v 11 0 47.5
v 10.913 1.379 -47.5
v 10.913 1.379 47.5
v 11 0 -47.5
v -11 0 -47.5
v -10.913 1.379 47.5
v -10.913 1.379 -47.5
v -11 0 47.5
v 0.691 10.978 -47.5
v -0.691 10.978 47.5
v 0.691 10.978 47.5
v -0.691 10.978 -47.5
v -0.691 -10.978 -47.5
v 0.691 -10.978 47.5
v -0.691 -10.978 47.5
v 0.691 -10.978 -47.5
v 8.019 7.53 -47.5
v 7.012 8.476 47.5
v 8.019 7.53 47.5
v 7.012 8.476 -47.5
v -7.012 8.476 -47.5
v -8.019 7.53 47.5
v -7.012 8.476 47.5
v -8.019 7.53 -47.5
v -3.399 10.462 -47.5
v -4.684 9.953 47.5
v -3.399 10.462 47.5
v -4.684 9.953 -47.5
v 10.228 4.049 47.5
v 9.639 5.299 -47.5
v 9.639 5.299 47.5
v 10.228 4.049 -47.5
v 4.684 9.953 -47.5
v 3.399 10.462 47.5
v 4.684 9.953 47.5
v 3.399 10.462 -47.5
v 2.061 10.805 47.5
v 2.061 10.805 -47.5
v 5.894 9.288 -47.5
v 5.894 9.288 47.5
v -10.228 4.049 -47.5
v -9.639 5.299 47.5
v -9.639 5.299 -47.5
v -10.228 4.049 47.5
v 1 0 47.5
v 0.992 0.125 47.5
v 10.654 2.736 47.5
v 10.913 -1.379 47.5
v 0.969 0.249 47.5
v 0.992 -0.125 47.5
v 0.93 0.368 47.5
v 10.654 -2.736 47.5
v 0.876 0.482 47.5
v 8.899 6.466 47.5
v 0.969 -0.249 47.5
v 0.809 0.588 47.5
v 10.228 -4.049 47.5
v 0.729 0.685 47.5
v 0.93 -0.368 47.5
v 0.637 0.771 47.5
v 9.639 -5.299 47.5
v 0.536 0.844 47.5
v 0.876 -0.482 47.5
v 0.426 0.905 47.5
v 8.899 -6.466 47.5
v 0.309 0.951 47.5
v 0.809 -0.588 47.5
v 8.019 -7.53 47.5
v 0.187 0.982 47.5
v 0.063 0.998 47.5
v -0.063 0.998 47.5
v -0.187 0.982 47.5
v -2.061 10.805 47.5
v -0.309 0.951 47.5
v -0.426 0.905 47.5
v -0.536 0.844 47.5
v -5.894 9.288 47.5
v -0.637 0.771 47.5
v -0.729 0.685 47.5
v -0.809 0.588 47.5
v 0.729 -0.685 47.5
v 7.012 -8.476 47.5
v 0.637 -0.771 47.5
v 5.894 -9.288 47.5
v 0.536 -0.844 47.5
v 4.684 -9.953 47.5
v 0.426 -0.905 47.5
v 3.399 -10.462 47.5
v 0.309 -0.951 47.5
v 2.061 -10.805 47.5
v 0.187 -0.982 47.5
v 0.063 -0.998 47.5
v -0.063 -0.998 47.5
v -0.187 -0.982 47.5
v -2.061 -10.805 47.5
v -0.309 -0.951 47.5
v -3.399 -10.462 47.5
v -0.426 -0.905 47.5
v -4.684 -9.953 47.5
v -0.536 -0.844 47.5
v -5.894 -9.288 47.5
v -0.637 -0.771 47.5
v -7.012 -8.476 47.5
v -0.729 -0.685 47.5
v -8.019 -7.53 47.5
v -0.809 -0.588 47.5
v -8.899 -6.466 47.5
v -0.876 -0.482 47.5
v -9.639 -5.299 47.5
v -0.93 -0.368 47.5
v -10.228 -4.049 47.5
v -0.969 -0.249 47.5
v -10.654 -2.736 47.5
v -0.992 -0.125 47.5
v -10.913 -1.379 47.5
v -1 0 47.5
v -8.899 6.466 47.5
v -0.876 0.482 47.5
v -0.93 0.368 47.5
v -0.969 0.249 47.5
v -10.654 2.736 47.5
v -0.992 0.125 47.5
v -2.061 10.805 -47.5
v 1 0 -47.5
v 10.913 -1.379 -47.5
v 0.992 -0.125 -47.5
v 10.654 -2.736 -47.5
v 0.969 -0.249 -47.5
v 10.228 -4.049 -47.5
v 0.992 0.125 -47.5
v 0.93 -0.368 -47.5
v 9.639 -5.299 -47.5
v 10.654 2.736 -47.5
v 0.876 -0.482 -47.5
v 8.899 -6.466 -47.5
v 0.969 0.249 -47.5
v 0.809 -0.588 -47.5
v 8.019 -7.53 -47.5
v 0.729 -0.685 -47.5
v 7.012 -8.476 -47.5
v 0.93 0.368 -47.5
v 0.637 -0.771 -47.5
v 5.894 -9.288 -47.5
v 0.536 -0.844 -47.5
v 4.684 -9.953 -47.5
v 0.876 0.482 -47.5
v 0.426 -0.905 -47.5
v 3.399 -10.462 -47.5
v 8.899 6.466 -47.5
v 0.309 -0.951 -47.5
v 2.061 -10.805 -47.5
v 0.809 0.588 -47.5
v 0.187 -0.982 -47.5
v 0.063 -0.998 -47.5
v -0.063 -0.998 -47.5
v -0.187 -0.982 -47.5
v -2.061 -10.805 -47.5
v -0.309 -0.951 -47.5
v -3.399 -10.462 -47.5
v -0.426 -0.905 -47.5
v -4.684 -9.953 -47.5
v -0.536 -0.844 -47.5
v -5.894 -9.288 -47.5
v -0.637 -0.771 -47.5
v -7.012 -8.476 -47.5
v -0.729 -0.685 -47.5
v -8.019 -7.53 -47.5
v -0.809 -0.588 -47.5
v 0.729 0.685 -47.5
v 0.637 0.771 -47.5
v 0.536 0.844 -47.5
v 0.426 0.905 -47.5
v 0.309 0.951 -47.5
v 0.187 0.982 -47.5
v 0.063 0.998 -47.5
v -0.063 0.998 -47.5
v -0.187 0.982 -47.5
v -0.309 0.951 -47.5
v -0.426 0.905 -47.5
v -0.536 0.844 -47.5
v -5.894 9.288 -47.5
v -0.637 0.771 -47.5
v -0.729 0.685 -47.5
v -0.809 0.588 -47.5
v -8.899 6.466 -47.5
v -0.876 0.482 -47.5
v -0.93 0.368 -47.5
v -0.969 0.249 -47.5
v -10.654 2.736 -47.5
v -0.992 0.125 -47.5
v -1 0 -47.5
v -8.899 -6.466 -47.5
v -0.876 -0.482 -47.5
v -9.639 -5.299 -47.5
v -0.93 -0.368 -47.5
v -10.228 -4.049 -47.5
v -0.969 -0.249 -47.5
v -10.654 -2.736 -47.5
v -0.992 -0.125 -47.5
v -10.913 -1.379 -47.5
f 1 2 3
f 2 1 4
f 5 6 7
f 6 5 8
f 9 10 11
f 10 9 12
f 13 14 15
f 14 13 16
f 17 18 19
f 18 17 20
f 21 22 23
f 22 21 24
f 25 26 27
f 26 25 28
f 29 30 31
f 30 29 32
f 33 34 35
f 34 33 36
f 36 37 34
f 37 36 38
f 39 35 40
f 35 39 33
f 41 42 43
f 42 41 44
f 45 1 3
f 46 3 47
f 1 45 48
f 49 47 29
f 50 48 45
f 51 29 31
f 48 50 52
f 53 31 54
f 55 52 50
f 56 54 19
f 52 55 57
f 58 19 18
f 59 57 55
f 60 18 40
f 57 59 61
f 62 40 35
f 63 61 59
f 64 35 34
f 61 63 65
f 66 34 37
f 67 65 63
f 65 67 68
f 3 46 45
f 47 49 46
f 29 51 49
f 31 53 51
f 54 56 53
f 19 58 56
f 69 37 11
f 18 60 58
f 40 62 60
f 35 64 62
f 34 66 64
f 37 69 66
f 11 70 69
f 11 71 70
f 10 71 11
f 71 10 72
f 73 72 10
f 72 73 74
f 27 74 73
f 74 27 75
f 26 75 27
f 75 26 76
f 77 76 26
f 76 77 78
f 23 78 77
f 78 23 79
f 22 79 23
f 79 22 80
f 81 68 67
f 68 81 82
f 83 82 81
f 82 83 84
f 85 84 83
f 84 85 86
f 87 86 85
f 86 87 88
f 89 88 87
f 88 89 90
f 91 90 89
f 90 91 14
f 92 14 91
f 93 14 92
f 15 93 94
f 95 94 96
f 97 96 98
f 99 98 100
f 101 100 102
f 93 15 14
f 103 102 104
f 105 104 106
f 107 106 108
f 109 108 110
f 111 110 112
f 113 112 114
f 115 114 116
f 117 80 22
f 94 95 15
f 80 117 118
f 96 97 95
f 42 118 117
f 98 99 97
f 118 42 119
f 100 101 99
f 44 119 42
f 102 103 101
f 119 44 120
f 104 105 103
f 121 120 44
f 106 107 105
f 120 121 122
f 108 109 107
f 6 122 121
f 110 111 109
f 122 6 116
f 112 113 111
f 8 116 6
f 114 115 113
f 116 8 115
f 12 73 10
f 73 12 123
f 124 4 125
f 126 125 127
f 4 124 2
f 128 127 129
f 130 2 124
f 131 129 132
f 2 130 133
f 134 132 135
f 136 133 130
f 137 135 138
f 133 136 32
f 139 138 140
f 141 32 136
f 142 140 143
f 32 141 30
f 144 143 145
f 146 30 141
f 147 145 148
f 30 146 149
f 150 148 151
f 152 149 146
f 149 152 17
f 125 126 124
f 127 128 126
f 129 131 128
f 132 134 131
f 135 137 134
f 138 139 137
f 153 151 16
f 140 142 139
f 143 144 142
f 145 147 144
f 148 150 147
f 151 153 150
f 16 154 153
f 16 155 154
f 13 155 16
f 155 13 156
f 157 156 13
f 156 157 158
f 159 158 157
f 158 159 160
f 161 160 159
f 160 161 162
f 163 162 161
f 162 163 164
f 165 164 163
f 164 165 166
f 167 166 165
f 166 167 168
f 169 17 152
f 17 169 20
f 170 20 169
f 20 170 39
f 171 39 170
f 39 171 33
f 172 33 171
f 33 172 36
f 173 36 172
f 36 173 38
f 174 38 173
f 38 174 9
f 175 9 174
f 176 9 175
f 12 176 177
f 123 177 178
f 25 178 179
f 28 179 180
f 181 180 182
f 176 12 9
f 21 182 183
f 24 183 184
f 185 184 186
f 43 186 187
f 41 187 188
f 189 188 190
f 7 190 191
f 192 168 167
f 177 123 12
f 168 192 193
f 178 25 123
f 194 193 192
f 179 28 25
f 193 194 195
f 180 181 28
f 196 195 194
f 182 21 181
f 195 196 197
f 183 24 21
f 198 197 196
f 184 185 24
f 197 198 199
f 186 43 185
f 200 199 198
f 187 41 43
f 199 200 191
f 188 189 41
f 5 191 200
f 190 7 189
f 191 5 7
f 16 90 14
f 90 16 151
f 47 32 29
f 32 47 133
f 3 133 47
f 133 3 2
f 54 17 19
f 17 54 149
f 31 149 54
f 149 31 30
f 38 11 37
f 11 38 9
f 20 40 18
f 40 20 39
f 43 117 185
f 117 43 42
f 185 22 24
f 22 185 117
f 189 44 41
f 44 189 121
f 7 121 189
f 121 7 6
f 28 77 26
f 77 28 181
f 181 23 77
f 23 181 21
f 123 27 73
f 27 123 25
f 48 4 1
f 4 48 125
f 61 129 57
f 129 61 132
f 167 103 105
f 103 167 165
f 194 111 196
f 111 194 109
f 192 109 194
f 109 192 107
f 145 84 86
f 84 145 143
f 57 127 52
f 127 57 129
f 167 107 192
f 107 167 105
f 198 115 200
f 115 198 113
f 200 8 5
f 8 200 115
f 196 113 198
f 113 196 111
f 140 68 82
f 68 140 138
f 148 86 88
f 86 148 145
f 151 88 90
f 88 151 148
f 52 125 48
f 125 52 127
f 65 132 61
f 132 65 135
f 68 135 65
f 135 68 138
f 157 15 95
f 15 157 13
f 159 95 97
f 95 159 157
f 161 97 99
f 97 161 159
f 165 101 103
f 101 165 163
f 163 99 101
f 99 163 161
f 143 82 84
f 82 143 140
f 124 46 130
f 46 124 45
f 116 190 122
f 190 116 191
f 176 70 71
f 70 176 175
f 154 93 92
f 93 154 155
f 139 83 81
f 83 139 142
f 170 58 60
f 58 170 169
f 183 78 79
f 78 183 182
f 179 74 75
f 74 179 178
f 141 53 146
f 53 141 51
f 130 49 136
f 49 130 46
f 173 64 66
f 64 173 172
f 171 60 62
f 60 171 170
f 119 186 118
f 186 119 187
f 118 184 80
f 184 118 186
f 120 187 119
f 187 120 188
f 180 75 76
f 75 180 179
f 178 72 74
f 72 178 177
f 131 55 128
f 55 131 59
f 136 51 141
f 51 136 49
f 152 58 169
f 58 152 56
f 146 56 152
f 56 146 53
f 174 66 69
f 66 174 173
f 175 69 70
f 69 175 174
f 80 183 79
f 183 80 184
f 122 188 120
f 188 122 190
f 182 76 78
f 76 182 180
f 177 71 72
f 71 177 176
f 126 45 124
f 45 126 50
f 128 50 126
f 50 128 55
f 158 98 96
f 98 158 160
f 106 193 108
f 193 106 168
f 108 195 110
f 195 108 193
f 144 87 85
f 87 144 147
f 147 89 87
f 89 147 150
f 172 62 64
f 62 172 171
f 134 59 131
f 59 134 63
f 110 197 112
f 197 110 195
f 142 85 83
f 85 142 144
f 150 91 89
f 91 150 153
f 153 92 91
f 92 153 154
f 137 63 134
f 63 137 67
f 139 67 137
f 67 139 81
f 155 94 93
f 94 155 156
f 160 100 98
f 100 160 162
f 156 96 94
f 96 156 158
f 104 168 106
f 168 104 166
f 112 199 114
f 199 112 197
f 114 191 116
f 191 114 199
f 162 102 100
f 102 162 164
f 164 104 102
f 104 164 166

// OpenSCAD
$fn = 50;


difference() {
	union() {
		translate(v = [0, 0, -47.5000000000]) {
			cylinder(h = 95, r = 11.0000000000);
		}
	}
	union() {
		translate(v = [0, 0, -100.0000000000]) {
			cylinder(h = 200, r = 1.0000000000);
		}
	}
}
